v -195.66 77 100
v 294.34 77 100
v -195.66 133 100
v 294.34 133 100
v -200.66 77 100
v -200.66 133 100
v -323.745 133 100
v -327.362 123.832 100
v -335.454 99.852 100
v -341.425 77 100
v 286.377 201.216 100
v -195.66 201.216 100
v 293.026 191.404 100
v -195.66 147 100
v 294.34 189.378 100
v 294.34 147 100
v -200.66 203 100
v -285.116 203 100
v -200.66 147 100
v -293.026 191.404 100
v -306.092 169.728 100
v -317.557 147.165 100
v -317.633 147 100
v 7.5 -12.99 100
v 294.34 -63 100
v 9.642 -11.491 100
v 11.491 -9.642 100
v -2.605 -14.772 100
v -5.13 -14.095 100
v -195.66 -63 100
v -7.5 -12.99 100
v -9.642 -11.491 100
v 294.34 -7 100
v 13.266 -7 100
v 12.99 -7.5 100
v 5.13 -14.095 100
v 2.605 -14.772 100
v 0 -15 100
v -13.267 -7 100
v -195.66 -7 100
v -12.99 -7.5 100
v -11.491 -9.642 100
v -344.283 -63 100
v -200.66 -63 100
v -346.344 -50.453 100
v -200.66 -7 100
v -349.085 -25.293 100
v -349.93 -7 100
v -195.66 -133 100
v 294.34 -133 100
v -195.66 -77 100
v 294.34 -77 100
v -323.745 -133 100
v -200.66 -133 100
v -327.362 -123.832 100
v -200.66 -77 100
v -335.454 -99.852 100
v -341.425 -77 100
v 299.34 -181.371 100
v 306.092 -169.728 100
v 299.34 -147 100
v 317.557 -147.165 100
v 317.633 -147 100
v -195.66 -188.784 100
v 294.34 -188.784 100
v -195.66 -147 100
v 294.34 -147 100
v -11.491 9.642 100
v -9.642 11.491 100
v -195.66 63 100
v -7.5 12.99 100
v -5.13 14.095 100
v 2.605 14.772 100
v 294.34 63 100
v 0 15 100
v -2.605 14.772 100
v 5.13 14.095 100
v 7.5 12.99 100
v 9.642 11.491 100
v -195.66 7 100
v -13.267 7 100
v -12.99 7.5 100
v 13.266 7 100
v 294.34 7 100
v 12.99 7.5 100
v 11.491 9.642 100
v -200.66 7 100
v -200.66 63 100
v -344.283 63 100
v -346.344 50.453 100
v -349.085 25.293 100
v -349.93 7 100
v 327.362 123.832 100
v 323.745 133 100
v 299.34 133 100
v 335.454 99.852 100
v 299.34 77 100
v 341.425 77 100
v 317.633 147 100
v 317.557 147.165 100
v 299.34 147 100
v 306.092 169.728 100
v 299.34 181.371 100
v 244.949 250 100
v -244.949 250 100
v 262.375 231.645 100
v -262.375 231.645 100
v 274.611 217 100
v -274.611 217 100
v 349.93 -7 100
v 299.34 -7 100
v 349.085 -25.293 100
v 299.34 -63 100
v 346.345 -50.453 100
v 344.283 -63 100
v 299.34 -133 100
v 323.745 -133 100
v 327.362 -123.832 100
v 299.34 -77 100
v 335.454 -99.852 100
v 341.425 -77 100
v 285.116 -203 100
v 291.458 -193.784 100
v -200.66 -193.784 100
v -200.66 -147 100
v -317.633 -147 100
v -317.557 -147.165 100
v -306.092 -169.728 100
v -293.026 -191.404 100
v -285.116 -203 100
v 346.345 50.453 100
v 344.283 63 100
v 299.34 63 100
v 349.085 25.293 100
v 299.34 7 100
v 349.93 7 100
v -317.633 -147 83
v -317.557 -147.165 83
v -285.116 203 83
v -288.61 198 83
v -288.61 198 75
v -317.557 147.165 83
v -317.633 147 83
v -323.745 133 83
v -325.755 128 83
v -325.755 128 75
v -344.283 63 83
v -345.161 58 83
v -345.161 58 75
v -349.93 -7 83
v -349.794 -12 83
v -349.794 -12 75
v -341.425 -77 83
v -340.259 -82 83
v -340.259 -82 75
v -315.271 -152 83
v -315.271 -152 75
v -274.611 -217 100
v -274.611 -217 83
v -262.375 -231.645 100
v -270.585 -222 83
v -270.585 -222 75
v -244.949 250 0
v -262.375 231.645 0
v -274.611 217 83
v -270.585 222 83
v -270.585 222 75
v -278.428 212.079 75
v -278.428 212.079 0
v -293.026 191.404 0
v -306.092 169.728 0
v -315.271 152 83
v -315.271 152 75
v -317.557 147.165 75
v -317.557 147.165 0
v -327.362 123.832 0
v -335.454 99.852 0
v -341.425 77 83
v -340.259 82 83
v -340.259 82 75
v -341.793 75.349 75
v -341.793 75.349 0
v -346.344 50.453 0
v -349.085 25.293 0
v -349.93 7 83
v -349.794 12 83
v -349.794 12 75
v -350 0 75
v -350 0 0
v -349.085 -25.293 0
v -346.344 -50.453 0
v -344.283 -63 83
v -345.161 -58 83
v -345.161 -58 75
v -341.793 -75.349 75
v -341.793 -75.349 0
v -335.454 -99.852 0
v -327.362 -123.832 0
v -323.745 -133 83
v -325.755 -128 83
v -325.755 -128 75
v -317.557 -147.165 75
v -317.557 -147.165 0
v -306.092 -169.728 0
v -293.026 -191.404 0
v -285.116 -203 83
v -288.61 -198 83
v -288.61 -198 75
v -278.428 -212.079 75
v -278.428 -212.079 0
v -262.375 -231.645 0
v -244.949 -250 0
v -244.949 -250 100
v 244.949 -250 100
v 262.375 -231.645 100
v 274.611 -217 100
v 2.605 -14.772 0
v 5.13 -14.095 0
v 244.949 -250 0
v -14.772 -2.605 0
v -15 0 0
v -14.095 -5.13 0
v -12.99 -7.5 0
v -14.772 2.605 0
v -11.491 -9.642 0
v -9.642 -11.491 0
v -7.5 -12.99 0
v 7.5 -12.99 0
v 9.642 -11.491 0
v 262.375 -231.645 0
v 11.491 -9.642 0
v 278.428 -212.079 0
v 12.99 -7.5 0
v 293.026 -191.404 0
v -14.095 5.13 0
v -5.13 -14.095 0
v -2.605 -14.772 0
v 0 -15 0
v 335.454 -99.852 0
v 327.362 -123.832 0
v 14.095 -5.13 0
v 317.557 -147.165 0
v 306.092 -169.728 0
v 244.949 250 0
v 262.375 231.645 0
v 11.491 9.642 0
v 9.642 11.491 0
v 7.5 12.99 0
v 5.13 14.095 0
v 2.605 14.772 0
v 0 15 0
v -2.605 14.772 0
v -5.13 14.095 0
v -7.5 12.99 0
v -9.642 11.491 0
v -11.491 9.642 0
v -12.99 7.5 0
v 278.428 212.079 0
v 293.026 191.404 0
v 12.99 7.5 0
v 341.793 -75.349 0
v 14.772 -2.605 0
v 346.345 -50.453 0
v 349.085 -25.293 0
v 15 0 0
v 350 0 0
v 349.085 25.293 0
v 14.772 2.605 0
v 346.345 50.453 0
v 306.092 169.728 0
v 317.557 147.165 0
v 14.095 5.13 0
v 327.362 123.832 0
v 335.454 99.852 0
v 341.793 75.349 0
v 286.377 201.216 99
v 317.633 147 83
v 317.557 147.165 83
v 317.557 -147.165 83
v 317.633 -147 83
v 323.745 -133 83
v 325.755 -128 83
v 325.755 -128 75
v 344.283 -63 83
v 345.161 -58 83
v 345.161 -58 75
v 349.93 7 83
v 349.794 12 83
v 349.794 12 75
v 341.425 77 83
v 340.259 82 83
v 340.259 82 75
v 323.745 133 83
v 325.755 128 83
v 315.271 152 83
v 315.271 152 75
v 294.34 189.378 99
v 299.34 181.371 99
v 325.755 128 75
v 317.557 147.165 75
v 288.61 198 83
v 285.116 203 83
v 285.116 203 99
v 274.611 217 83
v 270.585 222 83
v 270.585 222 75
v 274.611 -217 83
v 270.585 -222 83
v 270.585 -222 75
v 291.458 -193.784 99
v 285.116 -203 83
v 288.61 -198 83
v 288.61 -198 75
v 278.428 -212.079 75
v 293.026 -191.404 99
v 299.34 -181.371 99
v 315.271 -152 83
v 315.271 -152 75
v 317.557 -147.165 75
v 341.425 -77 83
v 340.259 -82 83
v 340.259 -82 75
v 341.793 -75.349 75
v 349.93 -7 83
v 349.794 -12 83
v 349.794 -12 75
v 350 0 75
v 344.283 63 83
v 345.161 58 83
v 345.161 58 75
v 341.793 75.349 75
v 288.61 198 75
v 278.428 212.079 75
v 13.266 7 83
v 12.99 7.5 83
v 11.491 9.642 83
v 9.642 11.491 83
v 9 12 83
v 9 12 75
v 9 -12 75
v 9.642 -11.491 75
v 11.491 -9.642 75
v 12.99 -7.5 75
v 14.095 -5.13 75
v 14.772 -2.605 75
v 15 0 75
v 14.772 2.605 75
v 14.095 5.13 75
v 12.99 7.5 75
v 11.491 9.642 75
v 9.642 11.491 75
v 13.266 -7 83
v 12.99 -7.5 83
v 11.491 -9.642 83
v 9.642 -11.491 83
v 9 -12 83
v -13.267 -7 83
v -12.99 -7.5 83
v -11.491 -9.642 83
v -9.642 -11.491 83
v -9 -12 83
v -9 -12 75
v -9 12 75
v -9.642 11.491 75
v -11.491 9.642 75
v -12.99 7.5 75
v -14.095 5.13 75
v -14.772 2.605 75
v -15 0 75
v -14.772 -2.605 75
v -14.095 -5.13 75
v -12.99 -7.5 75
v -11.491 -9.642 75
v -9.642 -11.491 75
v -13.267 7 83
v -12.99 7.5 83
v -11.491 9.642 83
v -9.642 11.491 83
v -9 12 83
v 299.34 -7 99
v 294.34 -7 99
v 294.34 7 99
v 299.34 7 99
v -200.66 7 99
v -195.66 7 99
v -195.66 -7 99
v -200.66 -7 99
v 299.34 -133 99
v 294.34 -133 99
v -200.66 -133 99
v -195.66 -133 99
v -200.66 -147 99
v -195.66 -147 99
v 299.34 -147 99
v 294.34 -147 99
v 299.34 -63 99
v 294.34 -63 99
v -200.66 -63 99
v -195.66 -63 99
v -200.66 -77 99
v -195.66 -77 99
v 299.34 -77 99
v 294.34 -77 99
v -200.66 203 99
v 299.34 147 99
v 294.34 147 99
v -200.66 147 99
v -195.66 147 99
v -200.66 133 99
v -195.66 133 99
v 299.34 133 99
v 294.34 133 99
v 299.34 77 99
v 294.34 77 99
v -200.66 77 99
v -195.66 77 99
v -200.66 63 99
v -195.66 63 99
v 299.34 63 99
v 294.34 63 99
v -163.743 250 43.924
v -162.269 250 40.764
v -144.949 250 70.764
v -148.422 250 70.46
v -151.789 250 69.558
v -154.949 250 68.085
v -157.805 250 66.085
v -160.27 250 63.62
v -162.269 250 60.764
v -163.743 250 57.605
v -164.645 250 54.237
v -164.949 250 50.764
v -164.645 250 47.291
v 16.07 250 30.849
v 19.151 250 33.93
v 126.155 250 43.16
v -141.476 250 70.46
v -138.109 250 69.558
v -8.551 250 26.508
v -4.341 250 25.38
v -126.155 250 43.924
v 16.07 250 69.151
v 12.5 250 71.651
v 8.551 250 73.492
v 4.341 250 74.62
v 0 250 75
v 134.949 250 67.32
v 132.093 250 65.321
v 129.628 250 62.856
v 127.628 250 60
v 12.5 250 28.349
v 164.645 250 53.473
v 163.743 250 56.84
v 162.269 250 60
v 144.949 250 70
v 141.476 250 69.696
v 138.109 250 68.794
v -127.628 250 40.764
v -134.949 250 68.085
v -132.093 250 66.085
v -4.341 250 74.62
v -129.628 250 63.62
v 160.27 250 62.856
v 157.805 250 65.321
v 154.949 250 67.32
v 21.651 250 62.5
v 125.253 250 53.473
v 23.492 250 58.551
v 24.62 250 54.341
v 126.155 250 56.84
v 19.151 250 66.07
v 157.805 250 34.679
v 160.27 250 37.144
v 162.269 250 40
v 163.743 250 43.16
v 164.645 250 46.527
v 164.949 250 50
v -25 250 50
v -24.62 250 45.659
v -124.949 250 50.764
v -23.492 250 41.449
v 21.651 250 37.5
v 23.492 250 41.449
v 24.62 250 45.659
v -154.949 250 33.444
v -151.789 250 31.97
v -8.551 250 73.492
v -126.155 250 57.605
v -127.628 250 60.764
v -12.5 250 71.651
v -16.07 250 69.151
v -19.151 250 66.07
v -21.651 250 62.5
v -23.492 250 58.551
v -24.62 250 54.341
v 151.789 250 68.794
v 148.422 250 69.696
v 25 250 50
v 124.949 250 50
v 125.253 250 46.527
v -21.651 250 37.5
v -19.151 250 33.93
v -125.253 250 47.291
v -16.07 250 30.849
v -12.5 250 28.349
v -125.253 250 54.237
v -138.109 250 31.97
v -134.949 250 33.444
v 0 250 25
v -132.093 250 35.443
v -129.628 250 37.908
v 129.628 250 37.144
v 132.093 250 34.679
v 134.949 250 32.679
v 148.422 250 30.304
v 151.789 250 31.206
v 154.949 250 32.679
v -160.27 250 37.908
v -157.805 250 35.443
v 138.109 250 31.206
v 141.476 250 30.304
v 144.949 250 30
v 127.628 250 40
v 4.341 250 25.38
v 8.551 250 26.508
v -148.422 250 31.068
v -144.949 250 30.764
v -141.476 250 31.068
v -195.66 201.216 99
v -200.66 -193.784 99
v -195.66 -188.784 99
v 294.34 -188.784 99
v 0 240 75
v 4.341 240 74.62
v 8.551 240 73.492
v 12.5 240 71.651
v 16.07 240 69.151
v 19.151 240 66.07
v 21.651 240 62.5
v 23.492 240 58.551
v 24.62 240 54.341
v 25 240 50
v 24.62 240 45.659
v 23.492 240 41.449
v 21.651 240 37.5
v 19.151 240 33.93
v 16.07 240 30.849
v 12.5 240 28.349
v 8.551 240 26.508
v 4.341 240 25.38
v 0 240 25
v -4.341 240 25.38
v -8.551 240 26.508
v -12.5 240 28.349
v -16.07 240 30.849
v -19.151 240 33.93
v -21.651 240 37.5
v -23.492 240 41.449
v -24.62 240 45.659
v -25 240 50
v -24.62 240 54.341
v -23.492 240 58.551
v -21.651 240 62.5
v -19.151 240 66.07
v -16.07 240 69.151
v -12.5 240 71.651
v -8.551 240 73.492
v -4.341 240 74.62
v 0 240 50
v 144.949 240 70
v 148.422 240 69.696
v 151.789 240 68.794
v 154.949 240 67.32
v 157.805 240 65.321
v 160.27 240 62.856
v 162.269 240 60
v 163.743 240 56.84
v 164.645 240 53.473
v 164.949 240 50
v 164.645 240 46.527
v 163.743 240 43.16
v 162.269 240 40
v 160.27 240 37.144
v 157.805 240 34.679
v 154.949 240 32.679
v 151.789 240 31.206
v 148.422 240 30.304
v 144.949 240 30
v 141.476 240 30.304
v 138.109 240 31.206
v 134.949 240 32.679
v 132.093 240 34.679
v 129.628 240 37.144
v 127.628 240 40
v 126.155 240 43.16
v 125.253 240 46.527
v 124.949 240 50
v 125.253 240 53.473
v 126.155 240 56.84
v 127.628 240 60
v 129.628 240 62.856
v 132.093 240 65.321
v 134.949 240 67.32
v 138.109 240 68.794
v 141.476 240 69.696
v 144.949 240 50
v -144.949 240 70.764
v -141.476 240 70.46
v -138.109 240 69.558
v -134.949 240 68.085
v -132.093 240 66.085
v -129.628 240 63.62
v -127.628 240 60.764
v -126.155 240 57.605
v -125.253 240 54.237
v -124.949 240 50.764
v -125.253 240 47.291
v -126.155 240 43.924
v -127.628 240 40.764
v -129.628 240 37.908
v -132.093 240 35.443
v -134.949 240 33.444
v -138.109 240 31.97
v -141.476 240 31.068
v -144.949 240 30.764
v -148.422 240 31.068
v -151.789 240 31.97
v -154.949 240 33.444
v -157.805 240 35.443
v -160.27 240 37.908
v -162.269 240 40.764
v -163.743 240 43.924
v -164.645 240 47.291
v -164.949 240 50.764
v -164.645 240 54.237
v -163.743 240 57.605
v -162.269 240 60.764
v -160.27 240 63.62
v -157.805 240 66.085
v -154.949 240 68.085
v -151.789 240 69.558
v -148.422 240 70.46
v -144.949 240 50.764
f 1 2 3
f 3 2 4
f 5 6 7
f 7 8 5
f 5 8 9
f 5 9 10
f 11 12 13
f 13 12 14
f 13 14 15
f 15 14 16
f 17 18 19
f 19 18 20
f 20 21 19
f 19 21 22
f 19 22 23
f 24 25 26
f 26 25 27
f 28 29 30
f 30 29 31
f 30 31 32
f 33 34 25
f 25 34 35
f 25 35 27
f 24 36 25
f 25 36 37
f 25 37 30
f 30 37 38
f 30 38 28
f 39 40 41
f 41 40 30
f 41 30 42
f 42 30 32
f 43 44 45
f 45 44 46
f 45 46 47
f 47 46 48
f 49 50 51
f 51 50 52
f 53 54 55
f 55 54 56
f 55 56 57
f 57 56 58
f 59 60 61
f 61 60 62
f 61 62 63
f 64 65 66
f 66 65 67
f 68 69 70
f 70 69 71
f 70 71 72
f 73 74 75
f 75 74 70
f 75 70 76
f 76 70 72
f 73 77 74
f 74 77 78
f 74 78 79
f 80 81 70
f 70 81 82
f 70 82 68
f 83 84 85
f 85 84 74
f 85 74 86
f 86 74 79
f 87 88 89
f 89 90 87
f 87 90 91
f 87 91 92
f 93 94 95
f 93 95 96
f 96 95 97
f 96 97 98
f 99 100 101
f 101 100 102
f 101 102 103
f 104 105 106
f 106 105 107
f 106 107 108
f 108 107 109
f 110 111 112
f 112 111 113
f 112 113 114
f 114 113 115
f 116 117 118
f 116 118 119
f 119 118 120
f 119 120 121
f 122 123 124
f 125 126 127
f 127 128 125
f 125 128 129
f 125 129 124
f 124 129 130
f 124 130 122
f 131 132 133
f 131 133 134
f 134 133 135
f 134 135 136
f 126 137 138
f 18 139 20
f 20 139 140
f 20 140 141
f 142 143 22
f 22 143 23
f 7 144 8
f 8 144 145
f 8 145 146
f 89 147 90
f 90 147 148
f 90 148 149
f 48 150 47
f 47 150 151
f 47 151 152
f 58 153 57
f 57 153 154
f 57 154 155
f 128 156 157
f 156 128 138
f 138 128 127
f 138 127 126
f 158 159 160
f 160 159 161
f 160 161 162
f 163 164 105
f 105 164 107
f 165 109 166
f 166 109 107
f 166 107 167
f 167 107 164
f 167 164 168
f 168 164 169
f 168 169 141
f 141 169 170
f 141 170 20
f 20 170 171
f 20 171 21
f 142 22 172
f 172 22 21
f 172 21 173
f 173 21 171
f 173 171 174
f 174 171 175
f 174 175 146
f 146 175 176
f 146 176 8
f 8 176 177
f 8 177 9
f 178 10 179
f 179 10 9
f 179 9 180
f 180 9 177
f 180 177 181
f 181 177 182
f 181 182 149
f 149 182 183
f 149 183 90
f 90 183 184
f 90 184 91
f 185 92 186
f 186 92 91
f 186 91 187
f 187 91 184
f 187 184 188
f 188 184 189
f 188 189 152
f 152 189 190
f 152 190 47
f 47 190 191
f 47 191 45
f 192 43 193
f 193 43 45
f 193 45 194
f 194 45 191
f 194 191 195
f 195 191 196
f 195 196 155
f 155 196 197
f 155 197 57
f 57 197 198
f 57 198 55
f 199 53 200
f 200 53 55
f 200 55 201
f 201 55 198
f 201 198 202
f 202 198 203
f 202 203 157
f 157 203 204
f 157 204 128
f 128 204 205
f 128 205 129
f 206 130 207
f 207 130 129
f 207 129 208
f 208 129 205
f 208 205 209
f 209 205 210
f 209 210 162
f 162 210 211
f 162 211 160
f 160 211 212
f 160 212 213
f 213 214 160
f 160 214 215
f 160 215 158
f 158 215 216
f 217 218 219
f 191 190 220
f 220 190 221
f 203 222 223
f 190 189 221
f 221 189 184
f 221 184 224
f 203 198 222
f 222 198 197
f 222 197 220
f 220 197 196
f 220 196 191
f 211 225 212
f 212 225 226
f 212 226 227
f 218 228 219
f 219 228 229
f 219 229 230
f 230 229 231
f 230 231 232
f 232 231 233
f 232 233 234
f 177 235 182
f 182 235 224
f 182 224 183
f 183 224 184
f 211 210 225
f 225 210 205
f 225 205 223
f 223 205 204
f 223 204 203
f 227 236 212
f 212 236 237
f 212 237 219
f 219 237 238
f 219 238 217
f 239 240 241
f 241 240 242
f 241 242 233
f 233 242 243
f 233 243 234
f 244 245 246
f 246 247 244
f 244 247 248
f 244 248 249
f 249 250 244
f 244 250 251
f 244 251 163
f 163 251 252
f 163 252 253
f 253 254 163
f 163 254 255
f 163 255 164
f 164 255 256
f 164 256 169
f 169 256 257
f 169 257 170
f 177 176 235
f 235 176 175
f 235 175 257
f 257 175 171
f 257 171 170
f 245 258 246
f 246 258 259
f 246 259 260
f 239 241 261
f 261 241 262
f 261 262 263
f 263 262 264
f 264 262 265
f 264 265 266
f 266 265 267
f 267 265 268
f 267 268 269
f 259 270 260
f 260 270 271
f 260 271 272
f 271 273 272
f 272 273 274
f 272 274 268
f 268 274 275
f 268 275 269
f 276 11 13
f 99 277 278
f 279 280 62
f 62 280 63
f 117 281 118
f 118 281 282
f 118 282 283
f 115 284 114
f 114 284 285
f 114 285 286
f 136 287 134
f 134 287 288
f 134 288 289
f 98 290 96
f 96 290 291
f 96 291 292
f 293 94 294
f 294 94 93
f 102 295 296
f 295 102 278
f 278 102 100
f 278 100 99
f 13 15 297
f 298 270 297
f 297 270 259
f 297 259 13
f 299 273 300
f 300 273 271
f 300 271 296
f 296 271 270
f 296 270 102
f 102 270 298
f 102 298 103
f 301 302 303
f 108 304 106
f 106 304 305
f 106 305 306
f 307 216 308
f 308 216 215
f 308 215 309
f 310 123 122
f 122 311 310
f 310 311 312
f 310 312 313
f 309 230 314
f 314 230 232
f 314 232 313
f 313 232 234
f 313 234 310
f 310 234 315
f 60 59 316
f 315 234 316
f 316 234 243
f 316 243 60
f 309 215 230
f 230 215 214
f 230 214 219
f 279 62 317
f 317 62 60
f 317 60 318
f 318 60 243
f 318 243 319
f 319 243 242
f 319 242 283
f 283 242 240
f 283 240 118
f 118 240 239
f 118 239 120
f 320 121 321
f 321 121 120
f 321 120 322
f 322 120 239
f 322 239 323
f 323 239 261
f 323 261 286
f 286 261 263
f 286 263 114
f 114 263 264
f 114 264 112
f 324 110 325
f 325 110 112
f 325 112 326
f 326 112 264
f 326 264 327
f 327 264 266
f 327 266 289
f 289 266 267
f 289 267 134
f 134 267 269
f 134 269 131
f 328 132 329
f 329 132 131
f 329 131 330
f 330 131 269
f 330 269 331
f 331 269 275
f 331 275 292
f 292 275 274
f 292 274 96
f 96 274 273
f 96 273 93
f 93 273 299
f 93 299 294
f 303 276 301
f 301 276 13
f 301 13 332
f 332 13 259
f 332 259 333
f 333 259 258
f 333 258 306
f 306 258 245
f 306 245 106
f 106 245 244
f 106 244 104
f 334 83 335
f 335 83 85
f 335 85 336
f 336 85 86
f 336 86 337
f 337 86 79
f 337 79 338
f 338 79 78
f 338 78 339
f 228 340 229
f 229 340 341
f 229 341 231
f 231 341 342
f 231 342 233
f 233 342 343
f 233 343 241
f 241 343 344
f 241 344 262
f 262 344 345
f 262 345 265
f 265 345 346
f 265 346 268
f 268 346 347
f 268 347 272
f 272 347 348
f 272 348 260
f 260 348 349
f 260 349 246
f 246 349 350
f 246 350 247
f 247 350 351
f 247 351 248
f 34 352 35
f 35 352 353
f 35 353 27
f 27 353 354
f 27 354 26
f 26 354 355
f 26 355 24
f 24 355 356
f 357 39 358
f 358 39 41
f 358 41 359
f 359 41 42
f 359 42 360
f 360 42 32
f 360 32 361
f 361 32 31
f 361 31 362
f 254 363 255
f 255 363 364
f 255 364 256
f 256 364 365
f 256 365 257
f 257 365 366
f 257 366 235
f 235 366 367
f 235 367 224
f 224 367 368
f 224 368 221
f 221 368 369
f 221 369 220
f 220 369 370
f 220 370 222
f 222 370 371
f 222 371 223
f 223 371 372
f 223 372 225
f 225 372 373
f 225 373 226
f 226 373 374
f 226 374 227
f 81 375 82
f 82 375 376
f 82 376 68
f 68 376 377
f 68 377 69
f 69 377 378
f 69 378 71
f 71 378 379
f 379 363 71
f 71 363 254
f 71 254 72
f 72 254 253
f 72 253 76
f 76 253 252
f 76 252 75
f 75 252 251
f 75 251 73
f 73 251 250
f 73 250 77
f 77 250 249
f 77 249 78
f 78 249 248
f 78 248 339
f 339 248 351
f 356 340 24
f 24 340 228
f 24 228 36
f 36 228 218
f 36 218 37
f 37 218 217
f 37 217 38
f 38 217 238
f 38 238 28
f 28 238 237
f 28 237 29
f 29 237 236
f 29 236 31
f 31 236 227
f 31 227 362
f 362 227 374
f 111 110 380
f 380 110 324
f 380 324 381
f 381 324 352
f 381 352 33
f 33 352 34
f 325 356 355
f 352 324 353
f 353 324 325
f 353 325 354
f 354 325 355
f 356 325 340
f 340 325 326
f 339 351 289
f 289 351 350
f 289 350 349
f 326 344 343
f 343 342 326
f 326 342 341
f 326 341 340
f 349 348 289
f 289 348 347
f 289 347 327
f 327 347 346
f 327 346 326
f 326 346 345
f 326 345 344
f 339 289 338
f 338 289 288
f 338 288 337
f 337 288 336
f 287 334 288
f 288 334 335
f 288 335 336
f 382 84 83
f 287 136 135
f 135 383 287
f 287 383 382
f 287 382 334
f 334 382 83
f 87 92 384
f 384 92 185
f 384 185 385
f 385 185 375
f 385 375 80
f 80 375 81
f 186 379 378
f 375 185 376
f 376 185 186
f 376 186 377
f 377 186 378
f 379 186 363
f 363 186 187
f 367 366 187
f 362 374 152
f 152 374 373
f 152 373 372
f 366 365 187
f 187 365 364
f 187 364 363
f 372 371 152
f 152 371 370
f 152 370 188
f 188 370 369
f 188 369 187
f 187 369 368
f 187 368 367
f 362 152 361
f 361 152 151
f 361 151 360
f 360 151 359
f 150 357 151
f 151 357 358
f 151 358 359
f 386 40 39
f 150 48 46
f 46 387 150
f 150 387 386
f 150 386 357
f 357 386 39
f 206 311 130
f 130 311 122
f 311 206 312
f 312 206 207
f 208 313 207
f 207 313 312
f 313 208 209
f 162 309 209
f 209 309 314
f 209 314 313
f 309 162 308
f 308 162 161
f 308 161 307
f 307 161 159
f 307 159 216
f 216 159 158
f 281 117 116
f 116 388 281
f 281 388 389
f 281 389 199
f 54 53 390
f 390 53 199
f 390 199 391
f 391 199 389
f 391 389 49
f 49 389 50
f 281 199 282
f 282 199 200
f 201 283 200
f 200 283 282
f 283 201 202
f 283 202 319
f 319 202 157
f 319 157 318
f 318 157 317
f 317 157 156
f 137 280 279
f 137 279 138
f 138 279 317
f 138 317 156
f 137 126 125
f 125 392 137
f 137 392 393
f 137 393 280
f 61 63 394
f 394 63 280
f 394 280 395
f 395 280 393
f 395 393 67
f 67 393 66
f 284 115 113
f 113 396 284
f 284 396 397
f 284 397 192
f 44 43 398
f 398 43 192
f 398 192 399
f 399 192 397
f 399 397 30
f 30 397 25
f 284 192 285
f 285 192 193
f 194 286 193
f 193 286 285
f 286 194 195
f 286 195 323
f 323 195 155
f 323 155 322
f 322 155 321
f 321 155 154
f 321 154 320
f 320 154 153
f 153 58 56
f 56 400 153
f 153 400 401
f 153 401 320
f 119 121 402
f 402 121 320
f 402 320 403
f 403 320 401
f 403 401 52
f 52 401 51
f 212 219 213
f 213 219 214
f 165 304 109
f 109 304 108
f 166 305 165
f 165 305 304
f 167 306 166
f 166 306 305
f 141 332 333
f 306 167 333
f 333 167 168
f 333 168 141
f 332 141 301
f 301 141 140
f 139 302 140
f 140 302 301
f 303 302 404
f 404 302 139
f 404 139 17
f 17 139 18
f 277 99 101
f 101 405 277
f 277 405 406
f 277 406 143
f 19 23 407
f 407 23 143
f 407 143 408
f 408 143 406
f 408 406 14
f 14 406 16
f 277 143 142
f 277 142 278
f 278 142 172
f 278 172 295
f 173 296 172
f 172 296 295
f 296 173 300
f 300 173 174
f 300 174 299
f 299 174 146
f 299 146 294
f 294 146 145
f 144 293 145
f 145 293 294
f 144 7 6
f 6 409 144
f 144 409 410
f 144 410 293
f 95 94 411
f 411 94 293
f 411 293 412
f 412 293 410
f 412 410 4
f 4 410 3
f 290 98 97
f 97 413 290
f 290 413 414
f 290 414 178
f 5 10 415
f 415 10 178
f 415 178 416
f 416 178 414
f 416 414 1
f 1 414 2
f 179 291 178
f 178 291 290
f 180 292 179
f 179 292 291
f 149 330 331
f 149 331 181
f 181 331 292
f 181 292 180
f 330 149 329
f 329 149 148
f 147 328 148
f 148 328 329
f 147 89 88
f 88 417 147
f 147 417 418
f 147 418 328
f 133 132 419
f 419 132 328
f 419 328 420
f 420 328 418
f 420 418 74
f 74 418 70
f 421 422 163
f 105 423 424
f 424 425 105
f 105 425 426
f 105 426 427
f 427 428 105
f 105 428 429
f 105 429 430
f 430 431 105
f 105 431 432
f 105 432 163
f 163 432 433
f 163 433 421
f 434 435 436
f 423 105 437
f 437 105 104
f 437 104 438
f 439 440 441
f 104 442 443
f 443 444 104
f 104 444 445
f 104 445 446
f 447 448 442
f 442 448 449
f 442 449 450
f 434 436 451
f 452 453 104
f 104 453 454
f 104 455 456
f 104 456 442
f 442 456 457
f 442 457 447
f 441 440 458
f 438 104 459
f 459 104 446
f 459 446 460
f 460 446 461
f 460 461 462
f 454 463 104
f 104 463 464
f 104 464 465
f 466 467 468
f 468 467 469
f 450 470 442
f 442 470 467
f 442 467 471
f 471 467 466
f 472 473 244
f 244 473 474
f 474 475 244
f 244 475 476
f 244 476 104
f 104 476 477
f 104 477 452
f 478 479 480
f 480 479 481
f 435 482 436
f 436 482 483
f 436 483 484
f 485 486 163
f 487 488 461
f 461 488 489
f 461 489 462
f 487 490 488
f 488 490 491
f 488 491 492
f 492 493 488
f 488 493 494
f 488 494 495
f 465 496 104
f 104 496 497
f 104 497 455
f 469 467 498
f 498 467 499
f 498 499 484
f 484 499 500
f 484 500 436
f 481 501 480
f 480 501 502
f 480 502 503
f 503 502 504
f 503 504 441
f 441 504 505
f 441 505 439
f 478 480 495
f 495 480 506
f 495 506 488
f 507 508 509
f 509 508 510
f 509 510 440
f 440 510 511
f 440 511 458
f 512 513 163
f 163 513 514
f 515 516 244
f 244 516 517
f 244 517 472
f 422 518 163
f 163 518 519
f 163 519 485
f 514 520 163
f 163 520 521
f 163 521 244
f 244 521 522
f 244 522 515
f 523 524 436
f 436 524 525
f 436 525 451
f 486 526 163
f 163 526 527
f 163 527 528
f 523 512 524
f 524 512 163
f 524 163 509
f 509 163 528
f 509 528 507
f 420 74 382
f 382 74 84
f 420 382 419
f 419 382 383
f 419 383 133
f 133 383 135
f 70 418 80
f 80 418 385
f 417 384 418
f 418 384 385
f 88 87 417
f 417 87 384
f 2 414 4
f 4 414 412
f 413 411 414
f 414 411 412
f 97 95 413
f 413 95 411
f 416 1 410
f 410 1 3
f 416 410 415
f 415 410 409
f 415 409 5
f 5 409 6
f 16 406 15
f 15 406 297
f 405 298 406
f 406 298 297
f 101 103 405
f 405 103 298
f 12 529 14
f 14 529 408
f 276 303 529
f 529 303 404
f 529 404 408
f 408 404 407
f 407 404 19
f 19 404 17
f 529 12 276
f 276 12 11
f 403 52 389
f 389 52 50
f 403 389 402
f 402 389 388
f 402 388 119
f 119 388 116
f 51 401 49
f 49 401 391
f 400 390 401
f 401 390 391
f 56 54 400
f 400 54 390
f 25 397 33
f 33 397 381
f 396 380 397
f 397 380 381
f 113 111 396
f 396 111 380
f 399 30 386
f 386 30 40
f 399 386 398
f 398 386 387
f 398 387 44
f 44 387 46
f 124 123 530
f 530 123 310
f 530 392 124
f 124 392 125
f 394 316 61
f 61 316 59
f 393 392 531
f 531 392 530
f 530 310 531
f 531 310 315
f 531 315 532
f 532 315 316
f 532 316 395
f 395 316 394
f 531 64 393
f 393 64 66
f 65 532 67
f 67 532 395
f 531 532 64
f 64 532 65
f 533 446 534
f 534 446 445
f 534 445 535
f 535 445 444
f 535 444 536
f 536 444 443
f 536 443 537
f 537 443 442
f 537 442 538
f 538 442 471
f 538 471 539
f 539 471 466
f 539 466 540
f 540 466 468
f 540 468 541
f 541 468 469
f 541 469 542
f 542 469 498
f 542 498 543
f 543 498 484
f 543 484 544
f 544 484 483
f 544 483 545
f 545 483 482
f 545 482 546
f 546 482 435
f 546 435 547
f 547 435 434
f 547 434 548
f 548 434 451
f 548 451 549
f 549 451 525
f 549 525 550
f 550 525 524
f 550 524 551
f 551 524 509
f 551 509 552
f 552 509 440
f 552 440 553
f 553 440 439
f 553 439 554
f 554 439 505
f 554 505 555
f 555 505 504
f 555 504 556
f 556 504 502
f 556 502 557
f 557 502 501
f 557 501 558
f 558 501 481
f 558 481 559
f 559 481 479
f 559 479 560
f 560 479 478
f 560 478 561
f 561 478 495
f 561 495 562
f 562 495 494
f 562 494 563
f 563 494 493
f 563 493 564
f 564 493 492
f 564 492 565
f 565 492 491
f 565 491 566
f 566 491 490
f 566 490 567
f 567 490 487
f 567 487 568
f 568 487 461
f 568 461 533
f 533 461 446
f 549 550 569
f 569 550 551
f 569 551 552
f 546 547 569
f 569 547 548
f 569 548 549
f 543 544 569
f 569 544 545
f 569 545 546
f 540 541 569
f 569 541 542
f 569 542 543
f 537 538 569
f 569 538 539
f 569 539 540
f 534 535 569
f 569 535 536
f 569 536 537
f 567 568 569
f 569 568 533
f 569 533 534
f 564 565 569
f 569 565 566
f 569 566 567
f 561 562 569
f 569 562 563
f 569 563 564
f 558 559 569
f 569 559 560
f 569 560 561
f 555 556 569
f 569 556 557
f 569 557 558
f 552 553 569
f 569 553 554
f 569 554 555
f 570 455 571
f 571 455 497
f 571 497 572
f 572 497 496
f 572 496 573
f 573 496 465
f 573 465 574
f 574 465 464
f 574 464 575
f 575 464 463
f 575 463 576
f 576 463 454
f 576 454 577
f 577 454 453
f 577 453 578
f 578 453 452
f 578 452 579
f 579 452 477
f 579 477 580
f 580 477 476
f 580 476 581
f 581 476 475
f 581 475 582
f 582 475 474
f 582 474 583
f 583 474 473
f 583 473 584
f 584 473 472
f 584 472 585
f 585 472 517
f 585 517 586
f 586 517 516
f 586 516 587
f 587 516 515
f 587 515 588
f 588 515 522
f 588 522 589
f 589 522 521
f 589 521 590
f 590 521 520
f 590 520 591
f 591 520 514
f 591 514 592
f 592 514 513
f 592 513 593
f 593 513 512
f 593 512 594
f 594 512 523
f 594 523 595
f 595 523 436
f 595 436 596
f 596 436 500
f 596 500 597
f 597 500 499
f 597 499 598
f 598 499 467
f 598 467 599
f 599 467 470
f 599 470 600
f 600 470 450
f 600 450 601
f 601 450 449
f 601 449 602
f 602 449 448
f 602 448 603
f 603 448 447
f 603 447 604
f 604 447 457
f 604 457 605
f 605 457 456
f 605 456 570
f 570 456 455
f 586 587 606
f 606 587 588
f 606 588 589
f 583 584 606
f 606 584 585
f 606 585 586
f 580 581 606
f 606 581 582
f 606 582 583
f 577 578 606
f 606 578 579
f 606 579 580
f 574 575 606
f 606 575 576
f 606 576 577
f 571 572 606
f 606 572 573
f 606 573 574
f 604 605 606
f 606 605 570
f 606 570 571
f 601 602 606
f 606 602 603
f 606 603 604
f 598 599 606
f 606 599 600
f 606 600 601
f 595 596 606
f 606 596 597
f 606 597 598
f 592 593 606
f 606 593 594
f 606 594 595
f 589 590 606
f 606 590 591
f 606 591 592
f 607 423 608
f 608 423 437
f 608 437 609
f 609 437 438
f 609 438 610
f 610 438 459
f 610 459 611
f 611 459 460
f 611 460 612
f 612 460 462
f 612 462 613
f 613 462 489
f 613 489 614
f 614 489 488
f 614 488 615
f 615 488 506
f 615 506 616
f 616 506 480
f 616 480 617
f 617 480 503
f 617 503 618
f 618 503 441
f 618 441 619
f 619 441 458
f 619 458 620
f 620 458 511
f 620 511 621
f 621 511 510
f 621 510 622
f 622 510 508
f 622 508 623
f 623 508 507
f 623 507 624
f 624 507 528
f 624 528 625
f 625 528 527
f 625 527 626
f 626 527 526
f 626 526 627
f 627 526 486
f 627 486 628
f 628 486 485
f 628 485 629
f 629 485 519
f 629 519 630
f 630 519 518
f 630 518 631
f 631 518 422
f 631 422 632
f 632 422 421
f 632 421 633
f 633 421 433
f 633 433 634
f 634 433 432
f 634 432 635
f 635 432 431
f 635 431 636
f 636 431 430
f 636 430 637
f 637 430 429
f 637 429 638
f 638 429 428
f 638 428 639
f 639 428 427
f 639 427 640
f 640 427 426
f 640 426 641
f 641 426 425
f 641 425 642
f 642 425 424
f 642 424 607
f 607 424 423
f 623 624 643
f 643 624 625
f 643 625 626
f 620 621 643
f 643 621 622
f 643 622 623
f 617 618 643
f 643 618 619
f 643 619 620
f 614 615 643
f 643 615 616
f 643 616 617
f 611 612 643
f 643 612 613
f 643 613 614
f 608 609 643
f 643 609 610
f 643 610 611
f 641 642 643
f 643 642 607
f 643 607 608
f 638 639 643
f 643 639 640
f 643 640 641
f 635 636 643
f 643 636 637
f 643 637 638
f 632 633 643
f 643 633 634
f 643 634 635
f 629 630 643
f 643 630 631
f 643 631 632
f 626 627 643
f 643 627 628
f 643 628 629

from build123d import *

# Parameters (mm, degrees)
SKETCH1_R           = 350
SKETCH1_R_2         = 15
BOSS_EXTRUDE1_DEPTH = 100
SKETCH2_W           = 100
SKETCH2_H           = 100
CUT_EXTRUDE1_DEPTH  = 500
SKETCH3_W           = 500
SKETCH3_H           = 400
SKETCH3_W_2         = 490
SKETCH3_H_2         = 390
CUT_EXTRUDE2_DEPTH  = 1
SKETCH4_R           = 25
SKETCH4_R_2         = 20
CUT_EXTRUDE3_DEPTH  = 10


with BuildPart() as part:
    # Sketch1 → Boss-Extrude1 (new body)
    with BuildSketch(Plane.XY):
        Circle(SKETCH1_R)
        Circle(SKETCH1_R_2, mode=Mode.SUBTRACT)
    extrude(amount=BOSS_EXTRUDE1_DEPTH)

    # Sketch2 → Cut-Extrude1 (cut, symmetric)
    with BuildSketch(Plane(origin=(0, 0, 0), x_dir=(0, 0, -1), z_dir=(1, 0, 0))):
        Polygon((-100, 7), (-83, 7), (-83, 12), (-75, 12), (-75, -12), (-83, -12), (-83, -7), (-100, -7), align=None)
        Polygon((-100, -77), (-100, -63), (-83, -63), (-83, -58), (-75, -58), (-75, -82), (-83, -82), (-83, -77), align=None)
        Polygon((-100, -147), (-100, -133), (-83, -133), (-83, -128), (-75, -128), (-75, -152), (-83, -152), (-83, -147), align=None)
        Polygon((-100, -217), (-100, -203), (-83, -203), (-83, -198), (-75, -198), (-75, -222), (-83, -222), (-83, -217), align=None)
        with Locations((-50, -300)):
            Rectangle(SKETCH2_W, SKETCH2_H)
        Polygon((-100, 63), (-100, 77), (-83, 77), (-83, 82), (-75, 82), (-75, 58), (-83, 58), (-83, 63), align=None)
        with Locations((-50, 300)):
            Rectangle(SKETCH2_W, SKETCH2_H)
        Polygon((-100, 133), (-100, 147), (-83, 147), (-83, 152), (-75, 152), (-75, 128), (-83, 128), (-83, 133), align=None)
        Polygon((-100, 203), (-100, 217), (-83, 217), (-83, 222), (-75, 222), (-75, 198), (-83, 198), (-83, 203), align=None)
    extrude(amount=CUT_EXTRUDE1_DEPTH, both=True, mode=Mode.SUBTRACT)

    # Sketch3 → Cut-Extrude2 (cut)
    with BuildSketch(Plane.XY.offset(100)):
        with Locations((49.34, 6.2164)):
            Rectangle(SKETCH3_W, SKETCH3_H)
        with Locations((49.34, 6.2164)):
            Rectangle(SKETCH3_W_2, SKETCH3_H_2, mode=Mode.SUBTRACT)
    extrude(amount=-CUT_EXTRUDE2_DEPTH, mode=Mode.SUBTRACT)

    # Sketch4 → Cut-Extrude3 (cut)
    with BuildSketch(Plane.XZ.offset(-250)):
        with Locations(Location((0, 50, 0), (0, 0, 270))):
            Circle(SKETCH4_R)
        with Locations(Location((144.948974278, 50, 0), (0, 0, 270))):
            Circle(SKETCH4_R_2)
        with Locations(Location((-144.948974278, 50.764190285, 0), (0, 0, 270))):
            Circle(SKETCH4_R_2)
    extrude(amount=CUT_EXTRUDE3_DEPTH, mode=Mode.SUBTRACT)


solid = part.part
